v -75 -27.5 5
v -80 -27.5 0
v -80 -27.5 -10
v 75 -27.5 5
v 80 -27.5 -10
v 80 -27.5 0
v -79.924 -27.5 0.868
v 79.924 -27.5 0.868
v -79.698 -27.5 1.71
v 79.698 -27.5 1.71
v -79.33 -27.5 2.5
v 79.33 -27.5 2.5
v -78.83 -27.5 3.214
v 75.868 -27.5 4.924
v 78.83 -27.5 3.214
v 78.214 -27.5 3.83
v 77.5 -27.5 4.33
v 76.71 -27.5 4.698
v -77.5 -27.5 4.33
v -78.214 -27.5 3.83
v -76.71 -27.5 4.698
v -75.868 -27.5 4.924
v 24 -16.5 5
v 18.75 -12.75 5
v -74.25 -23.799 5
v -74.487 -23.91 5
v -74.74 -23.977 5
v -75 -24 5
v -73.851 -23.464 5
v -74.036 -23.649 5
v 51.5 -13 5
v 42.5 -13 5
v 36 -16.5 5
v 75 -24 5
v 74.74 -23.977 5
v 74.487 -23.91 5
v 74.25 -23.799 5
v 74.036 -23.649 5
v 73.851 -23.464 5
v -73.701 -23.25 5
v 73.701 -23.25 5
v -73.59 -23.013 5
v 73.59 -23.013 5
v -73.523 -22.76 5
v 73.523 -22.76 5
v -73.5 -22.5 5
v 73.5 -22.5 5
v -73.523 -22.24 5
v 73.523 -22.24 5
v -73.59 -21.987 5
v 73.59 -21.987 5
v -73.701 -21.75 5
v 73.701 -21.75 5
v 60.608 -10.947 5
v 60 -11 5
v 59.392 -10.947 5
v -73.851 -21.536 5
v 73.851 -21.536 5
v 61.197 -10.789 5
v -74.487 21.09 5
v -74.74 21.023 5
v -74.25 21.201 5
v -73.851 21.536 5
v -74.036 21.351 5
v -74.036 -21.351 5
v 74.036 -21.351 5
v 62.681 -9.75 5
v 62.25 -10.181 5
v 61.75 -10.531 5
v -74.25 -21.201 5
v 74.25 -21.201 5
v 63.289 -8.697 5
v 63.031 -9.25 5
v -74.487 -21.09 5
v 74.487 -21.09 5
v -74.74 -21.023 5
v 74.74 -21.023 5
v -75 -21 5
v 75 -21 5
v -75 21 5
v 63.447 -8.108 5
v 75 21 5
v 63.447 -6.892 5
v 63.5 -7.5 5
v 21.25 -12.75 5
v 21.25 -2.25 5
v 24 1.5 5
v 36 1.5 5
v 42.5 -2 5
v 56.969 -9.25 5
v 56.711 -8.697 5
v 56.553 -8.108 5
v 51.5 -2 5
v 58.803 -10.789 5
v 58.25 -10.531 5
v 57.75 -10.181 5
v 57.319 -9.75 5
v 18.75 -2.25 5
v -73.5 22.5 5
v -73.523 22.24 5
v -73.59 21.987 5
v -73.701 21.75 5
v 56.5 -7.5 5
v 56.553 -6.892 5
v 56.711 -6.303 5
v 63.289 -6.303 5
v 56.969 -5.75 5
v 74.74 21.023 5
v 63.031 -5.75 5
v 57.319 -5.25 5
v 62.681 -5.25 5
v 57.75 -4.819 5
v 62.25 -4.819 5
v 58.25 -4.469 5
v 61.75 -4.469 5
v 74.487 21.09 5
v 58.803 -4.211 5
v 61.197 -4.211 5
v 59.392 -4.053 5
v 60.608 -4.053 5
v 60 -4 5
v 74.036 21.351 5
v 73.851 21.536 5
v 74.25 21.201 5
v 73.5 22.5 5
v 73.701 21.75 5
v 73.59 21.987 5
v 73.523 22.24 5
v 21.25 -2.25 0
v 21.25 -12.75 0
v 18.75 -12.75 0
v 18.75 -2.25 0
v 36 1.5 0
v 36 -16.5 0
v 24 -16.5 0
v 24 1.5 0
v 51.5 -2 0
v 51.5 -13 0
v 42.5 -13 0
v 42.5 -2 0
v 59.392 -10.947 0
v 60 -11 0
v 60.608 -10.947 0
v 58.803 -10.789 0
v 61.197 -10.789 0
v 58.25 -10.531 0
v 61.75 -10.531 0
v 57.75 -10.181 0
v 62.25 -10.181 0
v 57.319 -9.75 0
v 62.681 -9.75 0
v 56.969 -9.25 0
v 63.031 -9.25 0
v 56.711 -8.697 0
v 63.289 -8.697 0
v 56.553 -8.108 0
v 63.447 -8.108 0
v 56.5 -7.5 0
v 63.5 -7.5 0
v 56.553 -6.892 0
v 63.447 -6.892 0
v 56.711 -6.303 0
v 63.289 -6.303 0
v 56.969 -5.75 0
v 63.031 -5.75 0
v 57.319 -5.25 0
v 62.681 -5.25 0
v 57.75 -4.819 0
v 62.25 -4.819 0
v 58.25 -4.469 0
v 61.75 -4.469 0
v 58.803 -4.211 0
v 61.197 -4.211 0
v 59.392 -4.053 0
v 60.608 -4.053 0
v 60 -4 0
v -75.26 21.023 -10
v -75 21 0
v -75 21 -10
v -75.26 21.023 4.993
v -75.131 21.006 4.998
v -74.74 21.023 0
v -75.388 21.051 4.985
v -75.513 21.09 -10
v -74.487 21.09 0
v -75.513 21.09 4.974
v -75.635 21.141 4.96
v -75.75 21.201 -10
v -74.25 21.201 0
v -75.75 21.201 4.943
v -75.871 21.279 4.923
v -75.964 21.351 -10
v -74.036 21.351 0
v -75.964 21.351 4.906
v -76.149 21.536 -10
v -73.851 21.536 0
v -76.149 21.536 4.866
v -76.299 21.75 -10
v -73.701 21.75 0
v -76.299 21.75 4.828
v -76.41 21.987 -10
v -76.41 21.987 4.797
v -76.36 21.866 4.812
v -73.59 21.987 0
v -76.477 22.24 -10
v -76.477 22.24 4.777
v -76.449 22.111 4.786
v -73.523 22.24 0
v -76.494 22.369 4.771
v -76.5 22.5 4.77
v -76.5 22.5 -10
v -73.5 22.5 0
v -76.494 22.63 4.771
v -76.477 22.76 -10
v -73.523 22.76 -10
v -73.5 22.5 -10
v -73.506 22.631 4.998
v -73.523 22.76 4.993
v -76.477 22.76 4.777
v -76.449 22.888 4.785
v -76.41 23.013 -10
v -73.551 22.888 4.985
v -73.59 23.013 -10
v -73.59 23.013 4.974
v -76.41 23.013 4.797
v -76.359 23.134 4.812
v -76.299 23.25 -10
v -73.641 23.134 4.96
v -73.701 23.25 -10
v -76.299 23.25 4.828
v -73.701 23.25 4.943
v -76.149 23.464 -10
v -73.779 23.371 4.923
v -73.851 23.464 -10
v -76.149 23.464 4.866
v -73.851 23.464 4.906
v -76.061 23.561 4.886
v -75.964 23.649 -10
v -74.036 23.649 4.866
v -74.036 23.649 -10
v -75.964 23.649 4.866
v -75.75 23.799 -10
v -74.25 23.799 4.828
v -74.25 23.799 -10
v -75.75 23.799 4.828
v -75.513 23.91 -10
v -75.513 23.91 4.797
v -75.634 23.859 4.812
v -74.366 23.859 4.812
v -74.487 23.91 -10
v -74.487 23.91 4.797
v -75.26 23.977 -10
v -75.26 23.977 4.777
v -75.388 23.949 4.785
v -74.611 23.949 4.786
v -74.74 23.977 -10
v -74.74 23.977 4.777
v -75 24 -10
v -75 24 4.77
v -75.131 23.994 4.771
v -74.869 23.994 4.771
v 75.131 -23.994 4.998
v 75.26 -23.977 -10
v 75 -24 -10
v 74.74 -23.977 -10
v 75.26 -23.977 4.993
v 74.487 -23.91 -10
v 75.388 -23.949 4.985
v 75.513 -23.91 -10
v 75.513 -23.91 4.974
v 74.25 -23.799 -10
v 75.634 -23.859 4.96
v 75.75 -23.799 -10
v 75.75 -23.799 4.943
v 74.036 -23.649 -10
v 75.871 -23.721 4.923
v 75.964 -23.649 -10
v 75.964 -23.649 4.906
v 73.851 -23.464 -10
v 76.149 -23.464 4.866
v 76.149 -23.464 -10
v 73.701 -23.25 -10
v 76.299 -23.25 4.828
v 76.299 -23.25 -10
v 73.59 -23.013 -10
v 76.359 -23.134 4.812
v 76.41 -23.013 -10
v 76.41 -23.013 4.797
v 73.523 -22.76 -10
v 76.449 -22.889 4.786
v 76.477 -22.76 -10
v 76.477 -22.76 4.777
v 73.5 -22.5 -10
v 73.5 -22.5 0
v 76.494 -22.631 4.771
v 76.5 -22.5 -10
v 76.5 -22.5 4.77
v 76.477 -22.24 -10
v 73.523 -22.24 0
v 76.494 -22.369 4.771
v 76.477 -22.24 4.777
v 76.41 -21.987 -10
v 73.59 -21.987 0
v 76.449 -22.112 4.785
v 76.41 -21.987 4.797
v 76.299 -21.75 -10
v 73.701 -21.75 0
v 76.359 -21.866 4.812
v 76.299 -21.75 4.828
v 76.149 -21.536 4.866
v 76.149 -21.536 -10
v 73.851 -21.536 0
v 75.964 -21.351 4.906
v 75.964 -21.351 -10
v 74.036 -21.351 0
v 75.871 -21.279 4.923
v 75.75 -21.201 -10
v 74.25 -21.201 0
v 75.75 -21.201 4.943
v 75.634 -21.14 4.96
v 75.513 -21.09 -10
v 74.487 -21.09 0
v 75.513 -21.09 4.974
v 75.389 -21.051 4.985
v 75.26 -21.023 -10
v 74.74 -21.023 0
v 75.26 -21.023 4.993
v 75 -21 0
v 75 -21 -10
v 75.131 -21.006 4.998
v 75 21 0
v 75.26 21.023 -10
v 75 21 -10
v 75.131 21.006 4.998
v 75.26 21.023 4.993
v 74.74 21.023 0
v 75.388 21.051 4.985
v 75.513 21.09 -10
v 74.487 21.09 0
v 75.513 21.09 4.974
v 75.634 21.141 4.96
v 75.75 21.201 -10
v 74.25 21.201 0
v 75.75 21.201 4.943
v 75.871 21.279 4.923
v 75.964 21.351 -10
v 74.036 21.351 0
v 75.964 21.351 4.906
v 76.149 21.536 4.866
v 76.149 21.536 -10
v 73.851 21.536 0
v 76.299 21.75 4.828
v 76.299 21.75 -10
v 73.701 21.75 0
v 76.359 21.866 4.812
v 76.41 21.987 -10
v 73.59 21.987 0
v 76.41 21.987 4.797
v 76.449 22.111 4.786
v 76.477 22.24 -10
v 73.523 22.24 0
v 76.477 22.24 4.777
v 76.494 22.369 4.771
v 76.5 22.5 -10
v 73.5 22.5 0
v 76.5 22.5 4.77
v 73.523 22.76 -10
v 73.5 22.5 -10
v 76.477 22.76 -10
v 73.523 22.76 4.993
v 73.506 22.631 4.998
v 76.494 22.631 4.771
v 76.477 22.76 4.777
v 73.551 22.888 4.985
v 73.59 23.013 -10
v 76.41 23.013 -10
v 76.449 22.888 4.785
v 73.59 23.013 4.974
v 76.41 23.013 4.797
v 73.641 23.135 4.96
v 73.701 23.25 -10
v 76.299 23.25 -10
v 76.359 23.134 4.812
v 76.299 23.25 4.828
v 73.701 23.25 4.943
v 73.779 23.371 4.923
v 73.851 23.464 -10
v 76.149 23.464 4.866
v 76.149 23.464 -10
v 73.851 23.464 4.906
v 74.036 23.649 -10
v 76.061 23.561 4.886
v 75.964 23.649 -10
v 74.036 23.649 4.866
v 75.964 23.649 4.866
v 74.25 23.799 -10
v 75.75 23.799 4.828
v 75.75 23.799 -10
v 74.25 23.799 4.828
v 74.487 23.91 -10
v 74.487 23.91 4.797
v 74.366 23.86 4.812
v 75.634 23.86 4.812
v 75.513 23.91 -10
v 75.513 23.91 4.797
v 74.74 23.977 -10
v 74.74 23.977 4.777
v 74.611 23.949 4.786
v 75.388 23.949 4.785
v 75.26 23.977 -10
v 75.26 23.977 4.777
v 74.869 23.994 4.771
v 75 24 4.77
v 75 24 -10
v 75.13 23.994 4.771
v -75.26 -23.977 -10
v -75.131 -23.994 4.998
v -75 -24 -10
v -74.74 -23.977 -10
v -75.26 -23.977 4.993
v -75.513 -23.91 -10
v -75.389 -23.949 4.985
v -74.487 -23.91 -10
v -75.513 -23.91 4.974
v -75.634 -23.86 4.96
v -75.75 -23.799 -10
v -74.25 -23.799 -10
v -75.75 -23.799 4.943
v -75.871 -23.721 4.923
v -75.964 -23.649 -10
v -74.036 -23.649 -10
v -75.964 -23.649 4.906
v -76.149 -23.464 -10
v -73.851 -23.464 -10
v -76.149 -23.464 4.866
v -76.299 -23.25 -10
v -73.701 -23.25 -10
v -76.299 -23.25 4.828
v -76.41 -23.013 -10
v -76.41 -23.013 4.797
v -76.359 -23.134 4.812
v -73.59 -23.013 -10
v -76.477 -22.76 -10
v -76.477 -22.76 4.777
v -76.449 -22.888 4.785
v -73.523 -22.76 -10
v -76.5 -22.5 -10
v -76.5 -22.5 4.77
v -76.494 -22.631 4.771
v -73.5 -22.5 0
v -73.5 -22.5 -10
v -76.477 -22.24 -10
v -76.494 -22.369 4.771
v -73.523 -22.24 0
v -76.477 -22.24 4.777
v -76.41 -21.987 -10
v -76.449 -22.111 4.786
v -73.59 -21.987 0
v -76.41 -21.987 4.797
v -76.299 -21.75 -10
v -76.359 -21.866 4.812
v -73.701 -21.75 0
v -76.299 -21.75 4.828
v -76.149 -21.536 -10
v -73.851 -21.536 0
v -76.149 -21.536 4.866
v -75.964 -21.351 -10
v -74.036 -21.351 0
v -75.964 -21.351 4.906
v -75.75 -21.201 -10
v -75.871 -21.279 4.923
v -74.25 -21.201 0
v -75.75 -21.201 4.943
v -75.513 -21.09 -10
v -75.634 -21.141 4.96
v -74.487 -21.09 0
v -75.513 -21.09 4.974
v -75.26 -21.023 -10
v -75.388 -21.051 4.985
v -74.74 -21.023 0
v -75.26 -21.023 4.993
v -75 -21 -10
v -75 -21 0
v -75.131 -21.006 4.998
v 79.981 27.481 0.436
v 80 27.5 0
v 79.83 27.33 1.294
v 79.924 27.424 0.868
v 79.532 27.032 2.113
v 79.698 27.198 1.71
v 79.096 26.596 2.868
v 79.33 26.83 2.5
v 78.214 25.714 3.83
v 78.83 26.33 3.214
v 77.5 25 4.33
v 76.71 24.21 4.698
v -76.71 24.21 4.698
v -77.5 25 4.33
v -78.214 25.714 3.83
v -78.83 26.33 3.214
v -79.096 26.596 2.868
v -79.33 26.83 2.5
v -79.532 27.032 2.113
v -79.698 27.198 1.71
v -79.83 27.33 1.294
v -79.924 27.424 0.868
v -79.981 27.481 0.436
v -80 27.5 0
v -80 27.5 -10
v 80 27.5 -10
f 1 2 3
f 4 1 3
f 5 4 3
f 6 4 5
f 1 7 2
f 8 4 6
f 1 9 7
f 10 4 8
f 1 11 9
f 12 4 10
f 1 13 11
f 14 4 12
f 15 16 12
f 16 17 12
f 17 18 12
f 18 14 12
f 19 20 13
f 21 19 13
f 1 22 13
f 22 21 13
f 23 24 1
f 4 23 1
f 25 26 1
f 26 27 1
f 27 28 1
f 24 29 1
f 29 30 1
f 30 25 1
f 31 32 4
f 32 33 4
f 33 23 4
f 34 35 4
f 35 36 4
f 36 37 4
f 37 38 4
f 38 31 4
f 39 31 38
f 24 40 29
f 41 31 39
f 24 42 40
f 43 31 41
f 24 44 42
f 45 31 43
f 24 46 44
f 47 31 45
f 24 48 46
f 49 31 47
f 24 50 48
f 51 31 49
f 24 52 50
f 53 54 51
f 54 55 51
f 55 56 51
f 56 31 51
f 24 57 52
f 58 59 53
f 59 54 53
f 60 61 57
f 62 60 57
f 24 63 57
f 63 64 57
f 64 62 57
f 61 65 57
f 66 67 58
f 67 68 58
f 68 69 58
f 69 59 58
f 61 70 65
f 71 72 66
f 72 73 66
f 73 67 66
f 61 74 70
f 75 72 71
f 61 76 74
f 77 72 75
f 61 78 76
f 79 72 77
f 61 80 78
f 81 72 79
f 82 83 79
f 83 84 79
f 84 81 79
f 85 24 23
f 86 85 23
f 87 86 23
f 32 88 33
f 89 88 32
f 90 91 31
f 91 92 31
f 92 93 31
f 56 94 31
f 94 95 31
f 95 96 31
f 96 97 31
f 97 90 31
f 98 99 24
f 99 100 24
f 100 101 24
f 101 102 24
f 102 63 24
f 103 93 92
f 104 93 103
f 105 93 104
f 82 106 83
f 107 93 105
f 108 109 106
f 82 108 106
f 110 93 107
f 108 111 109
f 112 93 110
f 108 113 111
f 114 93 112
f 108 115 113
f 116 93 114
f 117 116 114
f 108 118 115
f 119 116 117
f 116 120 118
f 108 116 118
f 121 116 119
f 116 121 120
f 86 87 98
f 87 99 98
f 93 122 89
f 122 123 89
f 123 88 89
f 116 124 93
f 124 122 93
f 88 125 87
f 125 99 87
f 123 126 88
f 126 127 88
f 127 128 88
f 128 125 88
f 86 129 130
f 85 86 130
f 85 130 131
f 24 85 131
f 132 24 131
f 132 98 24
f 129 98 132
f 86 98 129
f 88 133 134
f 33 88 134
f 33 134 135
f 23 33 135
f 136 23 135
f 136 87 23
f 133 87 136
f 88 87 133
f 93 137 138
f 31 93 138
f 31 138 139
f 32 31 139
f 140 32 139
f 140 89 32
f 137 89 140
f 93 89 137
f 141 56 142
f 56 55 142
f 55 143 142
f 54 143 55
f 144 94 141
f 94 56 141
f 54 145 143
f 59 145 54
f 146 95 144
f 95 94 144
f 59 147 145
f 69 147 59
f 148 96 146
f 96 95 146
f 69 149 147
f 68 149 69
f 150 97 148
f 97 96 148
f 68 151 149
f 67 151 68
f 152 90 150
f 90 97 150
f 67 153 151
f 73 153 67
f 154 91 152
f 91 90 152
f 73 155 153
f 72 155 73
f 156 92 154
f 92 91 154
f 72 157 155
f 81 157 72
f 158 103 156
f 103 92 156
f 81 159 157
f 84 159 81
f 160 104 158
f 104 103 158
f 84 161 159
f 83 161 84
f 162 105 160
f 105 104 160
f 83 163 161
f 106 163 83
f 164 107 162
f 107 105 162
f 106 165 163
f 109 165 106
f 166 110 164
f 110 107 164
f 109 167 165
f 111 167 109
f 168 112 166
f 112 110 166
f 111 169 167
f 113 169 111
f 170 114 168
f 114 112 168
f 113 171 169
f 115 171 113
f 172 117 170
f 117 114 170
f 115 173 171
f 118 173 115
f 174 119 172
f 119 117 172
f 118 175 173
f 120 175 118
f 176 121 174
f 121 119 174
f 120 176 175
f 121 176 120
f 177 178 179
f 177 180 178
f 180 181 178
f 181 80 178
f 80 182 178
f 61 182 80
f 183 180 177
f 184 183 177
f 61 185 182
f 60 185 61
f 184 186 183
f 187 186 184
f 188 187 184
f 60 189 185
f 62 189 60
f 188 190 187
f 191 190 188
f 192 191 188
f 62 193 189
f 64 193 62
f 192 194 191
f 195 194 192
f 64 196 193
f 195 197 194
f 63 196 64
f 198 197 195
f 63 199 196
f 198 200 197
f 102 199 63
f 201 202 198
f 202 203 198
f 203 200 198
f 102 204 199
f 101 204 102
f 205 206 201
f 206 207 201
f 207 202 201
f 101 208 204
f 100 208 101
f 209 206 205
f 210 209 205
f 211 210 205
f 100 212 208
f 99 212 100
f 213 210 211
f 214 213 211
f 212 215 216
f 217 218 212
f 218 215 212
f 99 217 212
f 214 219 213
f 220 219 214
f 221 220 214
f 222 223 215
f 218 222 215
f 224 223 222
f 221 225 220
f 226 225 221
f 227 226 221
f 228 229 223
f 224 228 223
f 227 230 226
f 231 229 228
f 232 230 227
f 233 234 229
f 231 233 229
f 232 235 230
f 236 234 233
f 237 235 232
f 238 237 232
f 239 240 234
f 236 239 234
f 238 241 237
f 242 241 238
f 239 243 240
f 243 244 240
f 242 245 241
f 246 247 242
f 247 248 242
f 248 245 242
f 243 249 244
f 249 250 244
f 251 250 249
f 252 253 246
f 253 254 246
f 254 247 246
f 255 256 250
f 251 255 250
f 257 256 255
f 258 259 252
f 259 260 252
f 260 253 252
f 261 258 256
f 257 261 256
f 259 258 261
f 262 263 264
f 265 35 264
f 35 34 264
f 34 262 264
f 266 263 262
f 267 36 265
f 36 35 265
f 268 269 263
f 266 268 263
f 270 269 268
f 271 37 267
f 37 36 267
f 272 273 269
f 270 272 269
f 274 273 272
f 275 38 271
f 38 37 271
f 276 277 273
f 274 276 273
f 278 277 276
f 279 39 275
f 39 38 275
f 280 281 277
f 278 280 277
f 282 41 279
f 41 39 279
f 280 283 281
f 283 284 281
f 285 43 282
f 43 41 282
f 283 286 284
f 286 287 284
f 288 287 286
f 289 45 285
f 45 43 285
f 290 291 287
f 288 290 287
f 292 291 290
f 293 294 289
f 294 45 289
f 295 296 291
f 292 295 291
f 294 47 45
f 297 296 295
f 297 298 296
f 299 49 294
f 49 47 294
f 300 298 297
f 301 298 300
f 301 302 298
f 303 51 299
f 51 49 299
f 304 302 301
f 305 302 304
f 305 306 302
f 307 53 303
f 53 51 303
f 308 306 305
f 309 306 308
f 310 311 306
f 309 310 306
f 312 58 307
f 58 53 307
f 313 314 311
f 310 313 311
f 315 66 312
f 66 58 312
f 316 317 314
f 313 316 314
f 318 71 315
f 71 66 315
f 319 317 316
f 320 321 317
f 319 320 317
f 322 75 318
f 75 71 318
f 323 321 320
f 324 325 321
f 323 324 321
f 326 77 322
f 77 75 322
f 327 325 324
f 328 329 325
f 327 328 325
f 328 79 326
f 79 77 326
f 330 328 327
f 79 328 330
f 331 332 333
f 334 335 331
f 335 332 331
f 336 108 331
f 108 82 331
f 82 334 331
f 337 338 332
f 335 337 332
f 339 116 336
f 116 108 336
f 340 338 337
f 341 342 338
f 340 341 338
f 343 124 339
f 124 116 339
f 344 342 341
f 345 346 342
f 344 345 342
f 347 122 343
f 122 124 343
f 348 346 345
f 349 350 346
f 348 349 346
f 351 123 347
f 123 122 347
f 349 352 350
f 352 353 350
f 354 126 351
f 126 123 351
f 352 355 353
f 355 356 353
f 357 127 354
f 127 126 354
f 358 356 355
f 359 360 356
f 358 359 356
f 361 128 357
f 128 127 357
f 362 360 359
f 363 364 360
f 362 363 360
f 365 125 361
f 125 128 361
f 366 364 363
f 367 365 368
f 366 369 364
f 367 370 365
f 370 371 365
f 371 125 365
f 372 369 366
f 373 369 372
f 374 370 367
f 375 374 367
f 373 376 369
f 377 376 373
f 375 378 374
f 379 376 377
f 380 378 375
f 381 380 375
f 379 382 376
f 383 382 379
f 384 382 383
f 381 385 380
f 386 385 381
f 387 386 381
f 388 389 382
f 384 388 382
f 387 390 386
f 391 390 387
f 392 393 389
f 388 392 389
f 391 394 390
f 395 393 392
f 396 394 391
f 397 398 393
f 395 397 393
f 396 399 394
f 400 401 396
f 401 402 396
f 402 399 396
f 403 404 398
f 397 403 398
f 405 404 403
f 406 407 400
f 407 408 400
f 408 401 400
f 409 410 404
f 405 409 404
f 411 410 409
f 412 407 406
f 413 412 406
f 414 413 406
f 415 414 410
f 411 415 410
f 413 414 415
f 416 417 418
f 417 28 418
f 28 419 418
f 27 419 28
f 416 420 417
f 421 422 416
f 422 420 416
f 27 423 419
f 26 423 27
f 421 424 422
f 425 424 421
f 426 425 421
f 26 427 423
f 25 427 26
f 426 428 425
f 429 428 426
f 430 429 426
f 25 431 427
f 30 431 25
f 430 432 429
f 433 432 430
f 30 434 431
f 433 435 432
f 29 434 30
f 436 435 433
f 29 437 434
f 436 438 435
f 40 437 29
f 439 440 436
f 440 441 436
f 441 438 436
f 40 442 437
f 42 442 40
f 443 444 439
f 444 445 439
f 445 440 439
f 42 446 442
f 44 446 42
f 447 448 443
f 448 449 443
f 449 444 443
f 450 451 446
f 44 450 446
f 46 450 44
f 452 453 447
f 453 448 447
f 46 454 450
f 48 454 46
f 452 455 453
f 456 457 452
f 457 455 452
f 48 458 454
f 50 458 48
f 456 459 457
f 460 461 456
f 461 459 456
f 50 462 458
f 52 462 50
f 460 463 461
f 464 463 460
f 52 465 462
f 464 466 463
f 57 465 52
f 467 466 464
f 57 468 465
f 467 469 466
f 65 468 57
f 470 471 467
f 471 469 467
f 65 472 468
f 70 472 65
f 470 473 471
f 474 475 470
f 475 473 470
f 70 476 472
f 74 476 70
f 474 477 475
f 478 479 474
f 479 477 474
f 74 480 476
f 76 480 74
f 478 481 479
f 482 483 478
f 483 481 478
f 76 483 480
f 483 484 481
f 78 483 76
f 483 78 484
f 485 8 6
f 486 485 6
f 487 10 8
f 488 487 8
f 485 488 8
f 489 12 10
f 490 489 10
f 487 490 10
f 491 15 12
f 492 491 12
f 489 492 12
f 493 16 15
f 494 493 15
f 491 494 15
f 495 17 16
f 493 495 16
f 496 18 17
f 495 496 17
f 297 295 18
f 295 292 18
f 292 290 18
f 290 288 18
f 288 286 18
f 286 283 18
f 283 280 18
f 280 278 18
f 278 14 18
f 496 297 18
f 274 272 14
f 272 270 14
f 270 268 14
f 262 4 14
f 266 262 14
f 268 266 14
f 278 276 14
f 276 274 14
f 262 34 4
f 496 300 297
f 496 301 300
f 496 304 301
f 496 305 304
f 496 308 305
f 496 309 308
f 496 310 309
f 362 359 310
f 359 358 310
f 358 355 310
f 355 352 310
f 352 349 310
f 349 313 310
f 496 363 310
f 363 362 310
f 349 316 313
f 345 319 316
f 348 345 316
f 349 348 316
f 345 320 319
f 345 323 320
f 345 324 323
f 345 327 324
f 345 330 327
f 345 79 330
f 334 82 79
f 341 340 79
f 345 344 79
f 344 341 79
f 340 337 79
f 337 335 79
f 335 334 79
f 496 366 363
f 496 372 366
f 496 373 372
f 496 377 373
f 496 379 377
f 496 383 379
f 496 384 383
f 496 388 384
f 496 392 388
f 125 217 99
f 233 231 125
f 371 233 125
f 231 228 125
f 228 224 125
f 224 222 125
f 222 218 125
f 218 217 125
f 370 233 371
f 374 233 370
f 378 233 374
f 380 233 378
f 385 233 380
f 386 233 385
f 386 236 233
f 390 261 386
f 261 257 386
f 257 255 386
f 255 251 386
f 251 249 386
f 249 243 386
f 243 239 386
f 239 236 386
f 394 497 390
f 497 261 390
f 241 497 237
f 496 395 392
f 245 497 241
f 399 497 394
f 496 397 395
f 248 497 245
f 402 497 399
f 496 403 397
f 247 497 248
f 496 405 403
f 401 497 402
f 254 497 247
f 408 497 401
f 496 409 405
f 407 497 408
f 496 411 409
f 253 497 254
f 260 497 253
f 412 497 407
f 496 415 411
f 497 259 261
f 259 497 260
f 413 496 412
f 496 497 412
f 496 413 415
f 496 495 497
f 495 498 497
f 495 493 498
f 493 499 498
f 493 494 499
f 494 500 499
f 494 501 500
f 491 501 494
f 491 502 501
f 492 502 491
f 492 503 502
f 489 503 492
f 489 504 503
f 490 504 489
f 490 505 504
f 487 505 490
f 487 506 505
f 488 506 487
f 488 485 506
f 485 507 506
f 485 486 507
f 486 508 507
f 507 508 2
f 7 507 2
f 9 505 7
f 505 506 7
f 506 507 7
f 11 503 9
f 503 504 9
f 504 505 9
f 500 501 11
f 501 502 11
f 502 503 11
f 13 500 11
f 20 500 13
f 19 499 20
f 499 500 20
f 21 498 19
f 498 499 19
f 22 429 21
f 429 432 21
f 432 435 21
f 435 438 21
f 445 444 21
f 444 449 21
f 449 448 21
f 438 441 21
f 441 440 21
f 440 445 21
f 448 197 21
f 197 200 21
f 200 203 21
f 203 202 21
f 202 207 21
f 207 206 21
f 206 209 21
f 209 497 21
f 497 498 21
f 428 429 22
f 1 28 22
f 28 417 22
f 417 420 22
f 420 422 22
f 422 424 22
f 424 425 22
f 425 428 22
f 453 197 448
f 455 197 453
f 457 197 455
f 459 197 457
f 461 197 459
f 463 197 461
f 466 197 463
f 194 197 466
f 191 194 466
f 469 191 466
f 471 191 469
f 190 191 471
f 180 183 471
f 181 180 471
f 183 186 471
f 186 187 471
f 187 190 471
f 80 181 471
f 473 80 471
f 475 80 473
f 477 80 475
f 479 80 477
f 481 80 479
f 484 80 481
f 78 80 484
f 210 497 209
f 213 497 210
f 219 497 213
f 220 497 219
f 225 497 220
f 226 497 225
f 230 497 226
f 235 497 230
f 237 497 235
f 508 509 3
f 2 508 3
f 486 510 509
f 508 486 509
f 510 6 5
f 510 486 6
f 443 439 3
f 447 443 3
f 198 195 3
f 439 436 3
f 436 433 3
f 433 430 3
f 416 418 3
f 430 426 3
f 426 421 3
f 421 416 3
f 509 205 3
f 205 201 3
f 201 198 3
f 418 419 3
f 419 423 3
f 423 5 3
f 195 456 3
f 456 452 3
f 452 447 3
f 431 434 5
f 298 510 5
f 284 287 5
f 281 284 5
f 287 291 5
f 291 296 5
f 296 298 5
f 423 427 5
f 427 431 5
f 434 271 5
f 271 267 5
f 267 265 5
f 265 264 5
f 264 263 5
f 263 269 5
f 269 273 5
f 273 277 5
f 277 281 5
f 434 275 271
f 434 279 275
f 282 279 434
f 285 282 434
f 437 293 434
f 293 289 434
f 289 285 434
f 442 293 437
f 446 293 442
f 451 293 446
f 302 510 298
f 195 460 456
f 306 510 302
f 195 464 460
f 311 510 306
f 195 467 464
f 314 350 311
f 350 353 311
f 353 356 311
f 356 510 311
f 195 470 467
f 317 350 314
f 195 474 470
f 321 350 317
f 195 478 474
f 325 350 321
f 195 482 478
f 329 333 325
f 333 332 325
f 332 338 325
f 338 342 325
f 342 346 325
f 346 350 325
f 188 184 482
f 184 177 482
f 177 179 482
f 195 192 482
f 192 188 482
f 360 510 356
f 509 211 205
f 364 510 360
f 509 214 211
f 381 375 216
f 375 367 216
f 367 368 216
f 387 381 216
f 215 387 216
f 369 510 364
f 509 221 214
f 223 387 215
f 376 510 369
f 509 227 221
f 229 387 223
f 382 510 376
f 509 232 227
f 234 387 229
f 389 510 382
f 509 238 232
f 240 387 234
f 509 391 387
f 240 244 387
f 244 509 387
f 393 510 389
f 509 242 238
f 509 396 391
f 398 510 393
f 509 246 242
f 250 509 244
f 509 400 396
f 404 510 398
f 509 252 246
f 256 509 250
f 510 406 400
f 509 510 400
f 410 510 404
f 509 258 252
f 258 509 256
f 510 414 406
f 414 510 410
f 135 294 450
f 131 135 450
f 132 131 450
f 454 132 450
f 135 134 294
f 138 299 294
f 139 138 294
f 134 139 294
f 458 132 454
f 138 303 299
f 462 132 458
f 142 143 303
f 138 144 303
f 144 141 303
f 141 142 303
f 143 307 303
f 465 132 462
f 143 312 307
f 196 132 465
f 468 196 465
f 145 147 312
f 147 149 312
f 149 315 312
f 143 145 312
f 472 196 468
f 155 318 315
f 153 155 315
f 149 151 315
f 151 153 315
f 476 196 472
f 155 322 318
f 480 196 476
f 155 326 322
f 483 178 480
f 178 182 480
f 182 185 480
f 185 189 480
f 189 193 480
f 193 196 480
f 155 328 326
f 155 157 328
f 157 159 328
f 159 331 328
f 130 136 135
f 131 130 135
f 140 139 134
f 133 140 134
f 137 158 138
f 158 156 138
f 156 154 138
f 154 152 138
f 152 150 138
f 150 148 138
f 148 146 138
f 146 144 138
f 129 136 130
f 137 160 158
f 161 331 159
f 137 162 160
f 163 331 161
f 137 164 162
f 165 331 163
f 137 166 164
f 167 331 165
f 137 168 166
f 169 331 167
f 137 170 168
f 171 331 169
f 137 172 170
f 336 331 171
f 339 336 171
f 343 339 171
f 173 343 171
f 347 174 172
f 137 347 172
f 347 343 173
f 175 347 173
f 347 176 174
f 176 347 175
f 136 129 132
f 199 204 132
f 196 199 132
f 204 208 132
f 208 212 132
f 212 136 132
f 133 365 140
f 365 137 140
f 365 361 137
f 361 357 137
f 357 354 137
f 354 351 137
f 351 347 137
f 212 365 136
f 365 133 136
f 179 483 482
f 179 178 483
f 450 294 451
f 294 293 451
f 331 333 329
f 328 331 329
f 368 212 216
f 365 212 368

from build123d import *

# Parameters (mm, degrees)
SKETCH_1_W          = 160
SKETCH_1_H          = 55
EXTRUDE_1_DEPTH     = 5
SKETCH_2_R          = 3.5
SKETCH_2_W          = 9
SKETCH_2_H          = 11
SKETCH_2_W_2        = 12
SKETCH_2_H_2        = 18
SKETCH_2_W_3        = 2.5
SKETCH_2_H_3        = 10.5
CUT_EXTRUDE_1_DEPTH = 5
SKETCH_3_R          = 1.5
CUT_EXTRUDE_2_DEPTH = 10
FILLET_1_R          = 5
SKETCH_5_W          = 160
SKETCH_5_H          = 55
EXTRUDE_2_DEPTH     = 10
SKETCH_6_W          = 150
SKETCH_6_H          = 45
CUT_EXTRUDE_3_DEPTH = 10
SKETCH_3_2_R        = 1.5
CUT_EXTRUDE_4_DEPTH = 86.914201512


with BuildPart() as part:
    # Эскиз1 → Бобышка-Вытянуть1 (new body)
    with BuildSketch(Plane.XY):
        Rectangle(SKETCH_1_W, SKETCH_1_H)
    extrude(amount=EXTRUDE_1_DEPTH)

    # Эскиз2 → Вырез-Вытянуть1 (cut)
    with BuildSketch(Plane.XY.offset(5)):
        with Locations((60, -7.5)):
            Circle(SKETCH_2_R)
        with Locations((47, -7.5)):
            Rectangle(SKETCH_2_W, SKETCH_2_H)
        with Locations((30, -7.5)):
            Rectangle(SKETCH_2_W_2, SKETCH_2_H_2)
        with Locations((20, -7.5)):
            Rectangle(SKETCH_2_W_3, SKETCH_2_H_3)
    extrude(amount=-CUT_EXTRUDE_1_DEPTH, mode=Mode.SUBTRACT)

    # Эскиз3 → Вырез-Вытянуть2 (cut)
    with BuildSketch(Plane.XY.offset(5)):
        with Locations((-75, 22.5)):
            Circle(SKETCH_3_R)
        with Locations((-75, -22.5)):
            Circle(SKETCH_3_R)
        with Locations((75, 22.5)):
            Circle(SKETCH_3_R)
        with Locations((75, -22.5)):
            Circle(SKETCH_3_R)
    extrude(amount=-CUT_EXTRUDE_2_DEPTH, mode=Mode.SUBTRACT)

    # Скругление1
    # the kernel refuses this fillet: 5 mm, written as the material it takes off along each edge
    with BuildSketch(Plane(origin=(-80, 40, 5), x_dir=(0, 0, -1), z_dir=(0, -1, 0)), Plane(origin=(80, -40, 5), x_dir=(0, 0, -1), z_dir=(0, 1, 0))) as fillet_1_piece_1:
        with BuildLine():
            CenterArc((FILLET_1_R, FILLET_1_R), FILLET_1_R, 180, 90)
            Line((0, FILLET_1_R), (0, 0))
            Line((0, 0), (FILLET_1_R, 0))
        make_face()
    extrude(amount=80, mode=Mode.SUBTRACT)
    with BuildSketch(Plane(origin=(92.5, 27.5, 5), x_dir=(0, -1, 0), z_dir=(-1, 0, 0))) as fillet_1_piece_2:
        with BuildLine():
            CenterArc((FILLET_1_R, -FILLET_1_R), FILLET_1_R, 90, 90)
            Line((0, -FILLET_1_R), (0, 0))
            Line((0, 0), (FILLET_1_R, 0))
        make_face()
    extrude(amount=185, mode=Mode.SUBTRACT)

    # Эскиз5 → Бобышка-Вытянуть2 (add)
    with BuildSketch(Plane(origin=(0, 0, 0), x_dir=(-1, 0, 0), z_dir=(0, 0, -1))):
        Rectangle(SKETCH_5_W, SKETCH_5_H)
    extrude(amount=EXTRUDE_2_DEPTH)

    # Эскиз6 → Вырез-Вытянуть3 (cut)
    with BuildSketch(Plane(origin=(0, 0, -10), x_dir=(-1, 0, 0), z_dir=(0, 0, -1))):
        Rectangle(SKETCH_6_W, SKETCH_6_H)
    extrude(amount=-CUT_EXTRUDE_3_DEPTH, mode=Mode.SUBTRACT)

    # Эскиз3<2> → Вырез-Вытянуть4 (cut, through all)
    with BuildSketch(Plane.XY.offset(5)):
        with Locations((-75, 22.5)):
            Circle(SKETCH_3_2_R)
        with Locations(Location((-75, -22.5, 0), (0, 0, 90))):
            Circle(SKETCH_3_2_R)
        with Locations(Location((75, 22.5, 0), (0, 0, 270))):
            Circle(SKETCH_3_2_R)
        with Locations(Location((75, -22.5, 0), (0, 0, 90))):
            Circle(SKETCH_3_2_R)
    extrude(amount=-CUT_EXTRUDE_4_DEPTH, mode=Mode.SUBTRACT)


solid = part.part
